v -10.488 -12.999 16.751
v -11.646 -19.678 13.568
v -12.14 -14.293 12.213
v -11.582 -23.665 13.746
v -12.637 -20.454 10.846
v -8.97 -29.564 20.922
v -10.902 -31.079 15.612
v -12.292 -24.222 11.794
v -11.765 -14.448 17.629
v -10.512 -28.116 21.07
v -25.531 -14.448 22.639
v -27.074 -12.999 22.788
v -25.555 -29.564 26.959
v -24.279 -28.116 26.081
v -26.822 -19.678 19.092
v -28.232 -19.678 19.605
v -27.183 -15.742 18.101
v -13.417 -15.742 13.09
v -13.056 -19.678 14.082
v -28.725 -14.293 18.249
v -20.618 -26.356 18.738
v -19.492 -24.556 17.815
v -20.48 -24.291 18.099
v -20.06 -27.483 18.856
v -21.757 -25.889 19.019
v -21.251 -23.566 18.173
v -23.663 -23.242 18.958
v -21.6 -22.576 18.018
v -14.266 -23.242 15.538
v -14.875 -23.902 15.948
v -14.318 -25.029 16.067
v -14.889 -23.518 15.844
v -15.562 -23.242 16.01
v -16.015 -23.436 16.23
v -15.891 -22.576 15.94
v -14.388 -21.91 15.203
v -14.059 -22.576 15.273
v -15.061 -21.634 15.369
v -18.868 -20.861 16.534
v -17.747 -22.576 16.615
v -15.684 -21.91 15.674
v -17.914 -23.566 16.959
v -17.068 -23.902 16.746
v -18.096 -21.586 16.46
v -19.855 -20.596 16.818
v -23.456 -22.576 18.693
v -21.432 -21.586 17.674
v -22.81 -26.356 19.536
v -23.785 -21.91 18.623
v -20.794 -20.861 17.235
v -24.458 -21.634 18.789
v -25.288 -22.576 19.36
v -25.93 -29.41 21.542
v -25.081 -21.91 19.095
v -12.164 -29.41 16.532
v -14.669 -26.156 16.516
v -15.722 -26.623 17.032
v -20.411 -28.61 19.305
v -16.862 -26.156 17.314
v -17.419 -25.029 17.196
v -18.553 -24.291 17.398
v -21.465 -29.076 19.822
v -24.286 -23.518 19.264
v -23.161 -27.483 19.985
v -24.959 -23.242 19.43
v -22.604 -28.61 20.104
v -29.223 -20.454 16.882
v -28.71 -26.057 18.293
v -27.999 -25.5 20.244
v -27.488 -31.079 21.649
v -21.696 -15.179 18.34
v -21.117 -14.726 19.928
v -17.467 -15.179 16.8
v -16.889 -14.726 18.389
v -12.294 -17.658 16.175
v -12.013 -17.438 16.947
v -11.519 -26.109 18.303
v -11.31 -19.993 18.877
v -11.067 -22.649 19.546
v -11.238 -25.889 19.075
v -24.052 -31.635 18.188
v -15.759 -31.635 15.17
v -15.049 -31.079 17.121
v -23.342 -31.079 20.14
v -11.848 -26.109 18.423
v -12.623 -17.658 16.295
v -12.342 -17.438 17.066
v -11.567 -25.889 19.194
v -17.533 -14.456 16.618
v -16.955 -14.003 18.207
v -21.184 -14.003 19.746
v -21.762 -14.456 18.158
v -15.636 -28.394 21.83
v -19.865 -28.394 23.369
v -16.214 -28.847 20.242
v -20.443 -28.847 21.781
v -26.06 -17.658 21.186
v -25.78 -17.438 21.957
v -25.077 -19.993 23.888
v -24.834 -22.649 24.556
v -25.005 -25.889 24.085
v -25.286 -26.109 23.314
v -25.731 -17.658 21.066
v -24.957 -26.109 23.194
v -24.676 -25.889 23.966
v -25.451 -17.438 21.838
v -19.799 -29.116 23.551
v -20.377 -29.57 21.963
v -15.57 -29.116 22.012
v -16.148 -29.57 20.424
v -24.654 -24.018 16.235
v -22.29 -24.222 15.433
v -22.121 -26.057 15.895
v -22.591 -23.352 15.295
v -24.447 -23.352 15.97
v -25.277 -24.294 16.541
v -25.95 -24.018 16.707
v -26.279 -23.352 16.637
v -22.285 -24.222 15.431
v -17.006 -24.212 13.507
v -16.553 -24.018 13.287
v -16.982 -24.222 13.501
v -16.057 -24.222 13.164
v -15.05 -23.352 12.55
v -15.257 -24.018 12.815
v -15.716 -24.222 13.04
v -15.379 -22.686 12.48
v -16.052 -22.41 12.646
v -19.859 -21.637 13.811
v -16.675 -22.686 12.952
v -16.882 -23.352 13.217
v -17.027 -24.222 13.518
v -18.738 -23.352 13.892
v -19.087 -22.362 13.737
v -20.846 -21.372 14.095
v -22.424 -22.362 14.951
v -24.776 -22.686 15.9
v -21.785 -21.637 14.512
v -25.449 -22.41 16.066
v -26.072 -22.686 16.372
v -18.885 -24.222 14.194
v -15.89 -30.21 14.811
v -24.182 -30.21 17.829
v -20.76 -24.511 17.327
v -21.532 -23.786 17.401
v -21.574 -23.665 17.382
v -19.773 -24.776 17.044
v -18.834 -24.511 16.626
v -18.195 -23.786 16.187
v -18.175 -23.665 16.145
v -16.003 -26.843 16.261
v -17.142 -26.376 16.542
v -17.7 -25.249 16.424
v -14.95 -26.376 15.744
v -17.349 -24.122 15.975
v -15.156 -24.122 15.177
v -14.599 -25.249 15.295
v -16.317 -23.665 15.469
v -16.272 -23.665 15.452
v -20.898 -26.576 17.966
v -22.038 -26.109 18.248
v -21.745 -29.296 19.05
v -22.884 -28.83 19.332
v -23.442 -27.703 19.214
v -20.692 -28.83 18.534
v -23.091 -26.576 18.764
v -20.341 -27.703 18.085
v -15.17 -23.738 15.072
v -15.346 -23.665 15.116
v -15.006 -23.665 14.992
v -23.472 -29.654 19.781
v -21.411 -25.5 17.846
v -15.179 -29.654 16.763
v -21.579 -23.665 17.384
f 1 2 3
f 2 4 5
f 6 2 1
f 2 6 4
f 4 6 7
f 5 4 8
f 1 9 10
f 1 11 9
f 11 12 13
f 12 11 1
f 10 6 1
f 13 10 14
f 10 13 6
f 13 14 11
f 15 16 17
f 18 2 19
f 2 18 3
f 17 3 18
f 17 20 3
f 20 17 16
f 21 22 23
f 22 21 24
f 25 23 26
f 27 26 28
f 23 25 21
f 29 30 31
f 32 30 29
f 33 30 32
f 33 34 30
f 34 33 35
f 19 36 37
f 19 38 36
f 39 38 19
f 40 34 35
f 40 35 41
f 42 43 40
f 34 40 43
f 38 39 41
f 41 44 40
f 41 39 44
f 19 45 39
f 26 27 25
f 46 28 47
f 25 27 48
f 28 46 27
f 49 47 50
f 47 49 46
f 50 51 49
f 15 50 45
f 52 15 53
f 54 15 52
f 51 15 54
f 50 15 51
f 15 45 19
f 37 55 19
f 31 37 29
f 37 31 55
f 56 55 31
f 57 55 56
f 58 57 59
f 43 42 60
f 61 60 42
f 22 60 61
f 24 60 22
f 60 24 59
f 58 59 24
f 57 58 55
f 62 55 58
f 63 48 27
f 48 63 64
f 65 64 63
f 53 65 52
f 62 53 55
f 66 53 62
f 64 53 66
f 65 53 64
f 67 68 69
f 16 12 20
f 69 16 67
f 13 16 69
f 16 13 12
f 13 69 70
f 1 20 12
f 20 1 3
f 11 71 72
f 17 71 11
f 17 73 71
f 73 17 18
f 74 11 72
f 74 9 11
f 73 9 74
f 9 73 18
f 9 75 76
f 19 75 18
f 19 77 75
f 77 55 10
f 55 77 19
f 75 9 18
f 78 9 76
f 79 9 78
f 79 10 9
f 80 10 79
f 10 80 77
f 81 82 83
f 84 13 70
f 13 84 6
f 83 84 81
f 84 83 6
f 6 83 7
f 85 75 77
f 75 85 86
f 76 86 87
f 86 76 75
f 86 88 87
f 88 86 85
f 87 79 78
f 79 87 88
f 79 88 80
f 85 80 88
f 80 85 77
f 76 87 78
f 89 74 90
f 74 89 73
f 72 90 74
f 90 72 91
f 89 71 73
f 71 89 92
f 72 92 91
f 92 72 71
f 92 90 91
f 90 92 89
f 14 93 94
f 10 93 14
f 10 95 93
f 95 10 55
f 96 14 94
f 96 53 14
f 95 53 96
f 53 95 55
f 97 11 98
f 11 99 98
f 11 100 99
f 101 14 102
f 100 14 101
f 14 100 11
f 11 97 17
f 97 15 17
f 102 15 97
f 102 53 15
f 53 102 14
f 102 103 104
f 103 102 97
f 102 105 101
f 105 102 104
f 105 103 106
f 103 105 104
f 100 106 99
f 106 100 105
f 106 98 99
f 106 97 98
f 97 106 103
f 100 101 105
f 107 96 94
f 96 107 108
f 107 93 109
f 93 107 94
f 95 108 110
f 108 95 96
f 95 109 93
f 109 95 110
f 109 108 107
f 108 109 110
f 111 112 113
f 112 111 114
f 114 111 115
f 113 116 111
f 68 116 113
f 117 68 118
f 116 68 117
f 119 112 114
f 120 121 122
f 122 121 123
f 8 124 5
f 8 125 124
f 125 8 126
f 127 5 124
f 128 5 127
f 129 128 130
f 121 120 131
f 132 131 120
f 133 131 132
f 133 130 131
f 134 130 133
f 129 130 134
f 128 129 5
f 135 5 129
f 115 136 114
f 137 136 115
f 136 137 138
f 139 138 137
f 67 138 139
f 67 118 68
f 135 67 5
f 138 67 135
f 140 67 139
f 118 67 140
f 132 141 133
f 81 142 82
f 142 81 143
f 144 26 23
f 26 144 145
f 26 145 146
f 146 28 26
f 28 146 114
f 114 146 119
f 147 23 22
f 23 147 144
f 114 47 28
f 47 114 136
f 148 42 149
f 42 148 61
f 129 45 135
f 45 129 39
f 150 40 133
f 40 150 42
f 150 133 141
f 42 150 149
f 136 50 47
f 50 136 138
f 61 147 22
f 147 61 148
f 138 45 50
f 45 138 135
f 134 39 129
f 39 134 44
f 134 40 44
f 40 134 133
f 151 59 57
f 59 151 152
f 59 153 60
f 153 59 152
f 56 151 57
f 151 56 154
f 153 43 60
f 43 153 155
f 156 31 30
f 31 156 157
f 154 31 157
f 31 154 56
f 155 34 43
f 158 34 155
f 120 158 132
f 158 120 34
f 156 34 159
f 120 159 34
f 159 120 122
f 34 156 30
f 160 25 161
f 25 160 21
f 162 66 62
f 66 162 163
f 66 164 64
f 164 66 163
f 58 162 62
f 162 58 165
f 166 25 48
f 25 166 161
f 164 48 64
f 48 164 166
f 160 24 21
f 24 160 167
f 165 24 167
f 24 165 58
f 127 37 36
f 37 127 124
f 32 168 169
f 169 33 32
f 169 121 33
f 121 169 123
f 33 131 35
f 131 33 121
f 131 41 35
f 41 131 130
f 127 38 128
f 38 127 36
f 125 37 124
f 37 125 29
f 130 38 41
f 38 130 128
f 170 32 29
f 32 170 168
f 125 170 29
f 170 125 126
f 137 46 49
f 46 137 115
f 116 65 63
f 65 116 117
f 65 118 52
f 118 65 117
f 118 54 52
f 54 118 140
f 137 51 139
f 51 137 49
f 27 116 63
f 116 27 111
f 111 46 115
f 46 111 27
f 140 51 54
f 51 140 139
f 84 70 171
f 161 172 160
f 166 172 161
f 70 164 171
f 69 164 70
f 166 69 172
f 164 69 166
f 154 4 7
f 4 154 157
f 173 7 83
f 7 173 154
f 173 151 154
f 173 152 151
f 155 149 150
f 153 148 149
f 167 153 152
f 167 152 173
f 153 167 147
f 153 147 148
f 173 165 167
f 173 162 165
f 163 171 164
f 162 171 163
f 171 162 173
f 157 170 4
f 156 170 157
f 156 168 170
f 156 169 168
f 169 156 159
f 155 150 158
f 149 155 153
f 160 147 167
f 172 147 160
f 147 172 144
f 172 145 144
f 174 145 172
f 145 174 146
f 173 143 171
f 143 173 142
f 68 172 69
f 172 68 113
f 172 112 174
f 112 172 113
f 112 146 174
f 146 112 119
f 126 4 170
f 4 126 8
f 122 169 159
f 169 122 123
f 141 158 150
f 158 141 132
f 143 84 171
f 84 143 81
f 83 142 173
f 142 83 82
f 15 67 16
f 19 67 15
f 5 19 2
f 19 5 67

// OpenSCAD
difference () {
  union () {
    translate ([0, 0, 8]) {
      rotate (a=14.999999999999998, v=[0, 1, 0]) {
        translate ([0, 0, 0]) {
          translate ([0, 0, 248.67527518248744]) {
            rotate (a=5.0, v=[0, 1, 0]) {
              translate ([0, 0, -248.67527518248744]) {
                translate ([0, 0, 87.22627549802904]) {
                  rotate (a=-14.999999999999998, v=[1, 0, 0]) {
                    translate ([0, 0, -87.22627549802904]) {
                      difference () {
                        union () {
                          difference () {
                            union () {
                              translate ([0, 7.825, 5/2]) {
                                cube ([17.65, 1.5, 5], center=true);
                              }
                              translate ([8.075, 0, 5/2]) {
                                cube ([1.5, 17.15, 5], center=true);
                              }
                              hull () {
                                translate ([8.075, 0, 4.347826086956522]) {
                                  cube ([1.5, 2.75, 1], center=true);
                                }
                                translate ([7.325, 0, 3.1]) {
                                  rotate (a=90.0, v=[1, 0, 0]) {
                                    cube ([0.7, 0.85, 8.75], center=true);
                                  }
                                }
                              }
                            }
                            translate ([0, 7.4481343283582095, 3.05]) {
                              cube ([4.5, 0.75, 1.75], center=true);
                            }
                          }
                          mirror ([0, 1, 0]) {
                            mirror ([1, 0, 0]) {
                              difference () {
                                union () {
                                  translate ([0, 7.825, 5/2]) {
                                    cube ([17.65, 1.5, 5], center=true);
                                  }
                                  translate ([8.075, 0, 5/2]) {
                                    cube ([1.5, 17.15, 5], center=true);
                                  }
                                  hull () {
                                    translate ([8.075, 0, 4.347826086956522]) {
                                      cube ([1.5, 2.75, 1], center=true);
                                    }
                                    translate ([7.325, 0, 3.1]) {
                                      rotate (a=90.0, v=[1, 0, 0]) {
                                        cube ([0.7, 0.85, 8.75], center=true);
                                      }
                                    }
                                  }
                                }
                                translate ([0, 7.4481343283582095, 3.05]) {
                                  cube ([4.5, 0.75, 1.75], center=true);
                                }
                              }
                            }
                          }
                          mirror ([0, 1, 0]) {
                            mirror ([1, 0, 0]) {
                              difference () {
                                translate ([0, 0.0, -3/2]) {
                                  cube ([17.65, 17.15, 3], center=true);
                                }
                                cylinder ($fn=12, h=10, r=2.05, center=true);
                                translate ([-3.81, 2.54, 0]) {
                                  cylinder ($fn=8, h=10, r=1.65, center=true);
                                }
                                translate ([2.54, 5.08, 0]) {
                                  cylinder ($fn=8, h=10, r=1.65, center=true);
                                }
                                translate ([-5, 0, 0]) {
                                  cylinder ($fn=8, h=10, r=0.975, center=true);
                                }
                                translate ([5, 0, 0]) {
                                  cylinder ($fn=8, h=10, r=0.975, center=true);
                                }
                                translate ([0.01, 4.95, -2.6]) {
                                  cube ([17.65, 4.3, 3.5], center=true);
                                }
                                translate ([-3.922222222222222, 4, -2.6]) {
                                  cube ([11.472499999999998, 6.2, 3.5], center=true);
                                }
                                translate ([6.6187499999999995, 8.575, -2.6]) {
                                  cube ([4.4125, 4.3, 3.5], center=true);
                                }
                                translate ([-6.6187499999999995, 8.575, -2.6]) {
                                  cube ([4.4125, 4.3, 3.5], center=true);
                                }
                                translate ([0, -6, -2.6]) {
                                  cube ([17.65, 6, 10], center=true);
                                }
                              }
                            }
                          }
                        }
                      }
                    }
                  }
                }
              }
            }
          }
        }
      }
    }
  }
  translate ([0, 0, -20]) {
    cube ([350, 350, 40], center=true);
  }
}
